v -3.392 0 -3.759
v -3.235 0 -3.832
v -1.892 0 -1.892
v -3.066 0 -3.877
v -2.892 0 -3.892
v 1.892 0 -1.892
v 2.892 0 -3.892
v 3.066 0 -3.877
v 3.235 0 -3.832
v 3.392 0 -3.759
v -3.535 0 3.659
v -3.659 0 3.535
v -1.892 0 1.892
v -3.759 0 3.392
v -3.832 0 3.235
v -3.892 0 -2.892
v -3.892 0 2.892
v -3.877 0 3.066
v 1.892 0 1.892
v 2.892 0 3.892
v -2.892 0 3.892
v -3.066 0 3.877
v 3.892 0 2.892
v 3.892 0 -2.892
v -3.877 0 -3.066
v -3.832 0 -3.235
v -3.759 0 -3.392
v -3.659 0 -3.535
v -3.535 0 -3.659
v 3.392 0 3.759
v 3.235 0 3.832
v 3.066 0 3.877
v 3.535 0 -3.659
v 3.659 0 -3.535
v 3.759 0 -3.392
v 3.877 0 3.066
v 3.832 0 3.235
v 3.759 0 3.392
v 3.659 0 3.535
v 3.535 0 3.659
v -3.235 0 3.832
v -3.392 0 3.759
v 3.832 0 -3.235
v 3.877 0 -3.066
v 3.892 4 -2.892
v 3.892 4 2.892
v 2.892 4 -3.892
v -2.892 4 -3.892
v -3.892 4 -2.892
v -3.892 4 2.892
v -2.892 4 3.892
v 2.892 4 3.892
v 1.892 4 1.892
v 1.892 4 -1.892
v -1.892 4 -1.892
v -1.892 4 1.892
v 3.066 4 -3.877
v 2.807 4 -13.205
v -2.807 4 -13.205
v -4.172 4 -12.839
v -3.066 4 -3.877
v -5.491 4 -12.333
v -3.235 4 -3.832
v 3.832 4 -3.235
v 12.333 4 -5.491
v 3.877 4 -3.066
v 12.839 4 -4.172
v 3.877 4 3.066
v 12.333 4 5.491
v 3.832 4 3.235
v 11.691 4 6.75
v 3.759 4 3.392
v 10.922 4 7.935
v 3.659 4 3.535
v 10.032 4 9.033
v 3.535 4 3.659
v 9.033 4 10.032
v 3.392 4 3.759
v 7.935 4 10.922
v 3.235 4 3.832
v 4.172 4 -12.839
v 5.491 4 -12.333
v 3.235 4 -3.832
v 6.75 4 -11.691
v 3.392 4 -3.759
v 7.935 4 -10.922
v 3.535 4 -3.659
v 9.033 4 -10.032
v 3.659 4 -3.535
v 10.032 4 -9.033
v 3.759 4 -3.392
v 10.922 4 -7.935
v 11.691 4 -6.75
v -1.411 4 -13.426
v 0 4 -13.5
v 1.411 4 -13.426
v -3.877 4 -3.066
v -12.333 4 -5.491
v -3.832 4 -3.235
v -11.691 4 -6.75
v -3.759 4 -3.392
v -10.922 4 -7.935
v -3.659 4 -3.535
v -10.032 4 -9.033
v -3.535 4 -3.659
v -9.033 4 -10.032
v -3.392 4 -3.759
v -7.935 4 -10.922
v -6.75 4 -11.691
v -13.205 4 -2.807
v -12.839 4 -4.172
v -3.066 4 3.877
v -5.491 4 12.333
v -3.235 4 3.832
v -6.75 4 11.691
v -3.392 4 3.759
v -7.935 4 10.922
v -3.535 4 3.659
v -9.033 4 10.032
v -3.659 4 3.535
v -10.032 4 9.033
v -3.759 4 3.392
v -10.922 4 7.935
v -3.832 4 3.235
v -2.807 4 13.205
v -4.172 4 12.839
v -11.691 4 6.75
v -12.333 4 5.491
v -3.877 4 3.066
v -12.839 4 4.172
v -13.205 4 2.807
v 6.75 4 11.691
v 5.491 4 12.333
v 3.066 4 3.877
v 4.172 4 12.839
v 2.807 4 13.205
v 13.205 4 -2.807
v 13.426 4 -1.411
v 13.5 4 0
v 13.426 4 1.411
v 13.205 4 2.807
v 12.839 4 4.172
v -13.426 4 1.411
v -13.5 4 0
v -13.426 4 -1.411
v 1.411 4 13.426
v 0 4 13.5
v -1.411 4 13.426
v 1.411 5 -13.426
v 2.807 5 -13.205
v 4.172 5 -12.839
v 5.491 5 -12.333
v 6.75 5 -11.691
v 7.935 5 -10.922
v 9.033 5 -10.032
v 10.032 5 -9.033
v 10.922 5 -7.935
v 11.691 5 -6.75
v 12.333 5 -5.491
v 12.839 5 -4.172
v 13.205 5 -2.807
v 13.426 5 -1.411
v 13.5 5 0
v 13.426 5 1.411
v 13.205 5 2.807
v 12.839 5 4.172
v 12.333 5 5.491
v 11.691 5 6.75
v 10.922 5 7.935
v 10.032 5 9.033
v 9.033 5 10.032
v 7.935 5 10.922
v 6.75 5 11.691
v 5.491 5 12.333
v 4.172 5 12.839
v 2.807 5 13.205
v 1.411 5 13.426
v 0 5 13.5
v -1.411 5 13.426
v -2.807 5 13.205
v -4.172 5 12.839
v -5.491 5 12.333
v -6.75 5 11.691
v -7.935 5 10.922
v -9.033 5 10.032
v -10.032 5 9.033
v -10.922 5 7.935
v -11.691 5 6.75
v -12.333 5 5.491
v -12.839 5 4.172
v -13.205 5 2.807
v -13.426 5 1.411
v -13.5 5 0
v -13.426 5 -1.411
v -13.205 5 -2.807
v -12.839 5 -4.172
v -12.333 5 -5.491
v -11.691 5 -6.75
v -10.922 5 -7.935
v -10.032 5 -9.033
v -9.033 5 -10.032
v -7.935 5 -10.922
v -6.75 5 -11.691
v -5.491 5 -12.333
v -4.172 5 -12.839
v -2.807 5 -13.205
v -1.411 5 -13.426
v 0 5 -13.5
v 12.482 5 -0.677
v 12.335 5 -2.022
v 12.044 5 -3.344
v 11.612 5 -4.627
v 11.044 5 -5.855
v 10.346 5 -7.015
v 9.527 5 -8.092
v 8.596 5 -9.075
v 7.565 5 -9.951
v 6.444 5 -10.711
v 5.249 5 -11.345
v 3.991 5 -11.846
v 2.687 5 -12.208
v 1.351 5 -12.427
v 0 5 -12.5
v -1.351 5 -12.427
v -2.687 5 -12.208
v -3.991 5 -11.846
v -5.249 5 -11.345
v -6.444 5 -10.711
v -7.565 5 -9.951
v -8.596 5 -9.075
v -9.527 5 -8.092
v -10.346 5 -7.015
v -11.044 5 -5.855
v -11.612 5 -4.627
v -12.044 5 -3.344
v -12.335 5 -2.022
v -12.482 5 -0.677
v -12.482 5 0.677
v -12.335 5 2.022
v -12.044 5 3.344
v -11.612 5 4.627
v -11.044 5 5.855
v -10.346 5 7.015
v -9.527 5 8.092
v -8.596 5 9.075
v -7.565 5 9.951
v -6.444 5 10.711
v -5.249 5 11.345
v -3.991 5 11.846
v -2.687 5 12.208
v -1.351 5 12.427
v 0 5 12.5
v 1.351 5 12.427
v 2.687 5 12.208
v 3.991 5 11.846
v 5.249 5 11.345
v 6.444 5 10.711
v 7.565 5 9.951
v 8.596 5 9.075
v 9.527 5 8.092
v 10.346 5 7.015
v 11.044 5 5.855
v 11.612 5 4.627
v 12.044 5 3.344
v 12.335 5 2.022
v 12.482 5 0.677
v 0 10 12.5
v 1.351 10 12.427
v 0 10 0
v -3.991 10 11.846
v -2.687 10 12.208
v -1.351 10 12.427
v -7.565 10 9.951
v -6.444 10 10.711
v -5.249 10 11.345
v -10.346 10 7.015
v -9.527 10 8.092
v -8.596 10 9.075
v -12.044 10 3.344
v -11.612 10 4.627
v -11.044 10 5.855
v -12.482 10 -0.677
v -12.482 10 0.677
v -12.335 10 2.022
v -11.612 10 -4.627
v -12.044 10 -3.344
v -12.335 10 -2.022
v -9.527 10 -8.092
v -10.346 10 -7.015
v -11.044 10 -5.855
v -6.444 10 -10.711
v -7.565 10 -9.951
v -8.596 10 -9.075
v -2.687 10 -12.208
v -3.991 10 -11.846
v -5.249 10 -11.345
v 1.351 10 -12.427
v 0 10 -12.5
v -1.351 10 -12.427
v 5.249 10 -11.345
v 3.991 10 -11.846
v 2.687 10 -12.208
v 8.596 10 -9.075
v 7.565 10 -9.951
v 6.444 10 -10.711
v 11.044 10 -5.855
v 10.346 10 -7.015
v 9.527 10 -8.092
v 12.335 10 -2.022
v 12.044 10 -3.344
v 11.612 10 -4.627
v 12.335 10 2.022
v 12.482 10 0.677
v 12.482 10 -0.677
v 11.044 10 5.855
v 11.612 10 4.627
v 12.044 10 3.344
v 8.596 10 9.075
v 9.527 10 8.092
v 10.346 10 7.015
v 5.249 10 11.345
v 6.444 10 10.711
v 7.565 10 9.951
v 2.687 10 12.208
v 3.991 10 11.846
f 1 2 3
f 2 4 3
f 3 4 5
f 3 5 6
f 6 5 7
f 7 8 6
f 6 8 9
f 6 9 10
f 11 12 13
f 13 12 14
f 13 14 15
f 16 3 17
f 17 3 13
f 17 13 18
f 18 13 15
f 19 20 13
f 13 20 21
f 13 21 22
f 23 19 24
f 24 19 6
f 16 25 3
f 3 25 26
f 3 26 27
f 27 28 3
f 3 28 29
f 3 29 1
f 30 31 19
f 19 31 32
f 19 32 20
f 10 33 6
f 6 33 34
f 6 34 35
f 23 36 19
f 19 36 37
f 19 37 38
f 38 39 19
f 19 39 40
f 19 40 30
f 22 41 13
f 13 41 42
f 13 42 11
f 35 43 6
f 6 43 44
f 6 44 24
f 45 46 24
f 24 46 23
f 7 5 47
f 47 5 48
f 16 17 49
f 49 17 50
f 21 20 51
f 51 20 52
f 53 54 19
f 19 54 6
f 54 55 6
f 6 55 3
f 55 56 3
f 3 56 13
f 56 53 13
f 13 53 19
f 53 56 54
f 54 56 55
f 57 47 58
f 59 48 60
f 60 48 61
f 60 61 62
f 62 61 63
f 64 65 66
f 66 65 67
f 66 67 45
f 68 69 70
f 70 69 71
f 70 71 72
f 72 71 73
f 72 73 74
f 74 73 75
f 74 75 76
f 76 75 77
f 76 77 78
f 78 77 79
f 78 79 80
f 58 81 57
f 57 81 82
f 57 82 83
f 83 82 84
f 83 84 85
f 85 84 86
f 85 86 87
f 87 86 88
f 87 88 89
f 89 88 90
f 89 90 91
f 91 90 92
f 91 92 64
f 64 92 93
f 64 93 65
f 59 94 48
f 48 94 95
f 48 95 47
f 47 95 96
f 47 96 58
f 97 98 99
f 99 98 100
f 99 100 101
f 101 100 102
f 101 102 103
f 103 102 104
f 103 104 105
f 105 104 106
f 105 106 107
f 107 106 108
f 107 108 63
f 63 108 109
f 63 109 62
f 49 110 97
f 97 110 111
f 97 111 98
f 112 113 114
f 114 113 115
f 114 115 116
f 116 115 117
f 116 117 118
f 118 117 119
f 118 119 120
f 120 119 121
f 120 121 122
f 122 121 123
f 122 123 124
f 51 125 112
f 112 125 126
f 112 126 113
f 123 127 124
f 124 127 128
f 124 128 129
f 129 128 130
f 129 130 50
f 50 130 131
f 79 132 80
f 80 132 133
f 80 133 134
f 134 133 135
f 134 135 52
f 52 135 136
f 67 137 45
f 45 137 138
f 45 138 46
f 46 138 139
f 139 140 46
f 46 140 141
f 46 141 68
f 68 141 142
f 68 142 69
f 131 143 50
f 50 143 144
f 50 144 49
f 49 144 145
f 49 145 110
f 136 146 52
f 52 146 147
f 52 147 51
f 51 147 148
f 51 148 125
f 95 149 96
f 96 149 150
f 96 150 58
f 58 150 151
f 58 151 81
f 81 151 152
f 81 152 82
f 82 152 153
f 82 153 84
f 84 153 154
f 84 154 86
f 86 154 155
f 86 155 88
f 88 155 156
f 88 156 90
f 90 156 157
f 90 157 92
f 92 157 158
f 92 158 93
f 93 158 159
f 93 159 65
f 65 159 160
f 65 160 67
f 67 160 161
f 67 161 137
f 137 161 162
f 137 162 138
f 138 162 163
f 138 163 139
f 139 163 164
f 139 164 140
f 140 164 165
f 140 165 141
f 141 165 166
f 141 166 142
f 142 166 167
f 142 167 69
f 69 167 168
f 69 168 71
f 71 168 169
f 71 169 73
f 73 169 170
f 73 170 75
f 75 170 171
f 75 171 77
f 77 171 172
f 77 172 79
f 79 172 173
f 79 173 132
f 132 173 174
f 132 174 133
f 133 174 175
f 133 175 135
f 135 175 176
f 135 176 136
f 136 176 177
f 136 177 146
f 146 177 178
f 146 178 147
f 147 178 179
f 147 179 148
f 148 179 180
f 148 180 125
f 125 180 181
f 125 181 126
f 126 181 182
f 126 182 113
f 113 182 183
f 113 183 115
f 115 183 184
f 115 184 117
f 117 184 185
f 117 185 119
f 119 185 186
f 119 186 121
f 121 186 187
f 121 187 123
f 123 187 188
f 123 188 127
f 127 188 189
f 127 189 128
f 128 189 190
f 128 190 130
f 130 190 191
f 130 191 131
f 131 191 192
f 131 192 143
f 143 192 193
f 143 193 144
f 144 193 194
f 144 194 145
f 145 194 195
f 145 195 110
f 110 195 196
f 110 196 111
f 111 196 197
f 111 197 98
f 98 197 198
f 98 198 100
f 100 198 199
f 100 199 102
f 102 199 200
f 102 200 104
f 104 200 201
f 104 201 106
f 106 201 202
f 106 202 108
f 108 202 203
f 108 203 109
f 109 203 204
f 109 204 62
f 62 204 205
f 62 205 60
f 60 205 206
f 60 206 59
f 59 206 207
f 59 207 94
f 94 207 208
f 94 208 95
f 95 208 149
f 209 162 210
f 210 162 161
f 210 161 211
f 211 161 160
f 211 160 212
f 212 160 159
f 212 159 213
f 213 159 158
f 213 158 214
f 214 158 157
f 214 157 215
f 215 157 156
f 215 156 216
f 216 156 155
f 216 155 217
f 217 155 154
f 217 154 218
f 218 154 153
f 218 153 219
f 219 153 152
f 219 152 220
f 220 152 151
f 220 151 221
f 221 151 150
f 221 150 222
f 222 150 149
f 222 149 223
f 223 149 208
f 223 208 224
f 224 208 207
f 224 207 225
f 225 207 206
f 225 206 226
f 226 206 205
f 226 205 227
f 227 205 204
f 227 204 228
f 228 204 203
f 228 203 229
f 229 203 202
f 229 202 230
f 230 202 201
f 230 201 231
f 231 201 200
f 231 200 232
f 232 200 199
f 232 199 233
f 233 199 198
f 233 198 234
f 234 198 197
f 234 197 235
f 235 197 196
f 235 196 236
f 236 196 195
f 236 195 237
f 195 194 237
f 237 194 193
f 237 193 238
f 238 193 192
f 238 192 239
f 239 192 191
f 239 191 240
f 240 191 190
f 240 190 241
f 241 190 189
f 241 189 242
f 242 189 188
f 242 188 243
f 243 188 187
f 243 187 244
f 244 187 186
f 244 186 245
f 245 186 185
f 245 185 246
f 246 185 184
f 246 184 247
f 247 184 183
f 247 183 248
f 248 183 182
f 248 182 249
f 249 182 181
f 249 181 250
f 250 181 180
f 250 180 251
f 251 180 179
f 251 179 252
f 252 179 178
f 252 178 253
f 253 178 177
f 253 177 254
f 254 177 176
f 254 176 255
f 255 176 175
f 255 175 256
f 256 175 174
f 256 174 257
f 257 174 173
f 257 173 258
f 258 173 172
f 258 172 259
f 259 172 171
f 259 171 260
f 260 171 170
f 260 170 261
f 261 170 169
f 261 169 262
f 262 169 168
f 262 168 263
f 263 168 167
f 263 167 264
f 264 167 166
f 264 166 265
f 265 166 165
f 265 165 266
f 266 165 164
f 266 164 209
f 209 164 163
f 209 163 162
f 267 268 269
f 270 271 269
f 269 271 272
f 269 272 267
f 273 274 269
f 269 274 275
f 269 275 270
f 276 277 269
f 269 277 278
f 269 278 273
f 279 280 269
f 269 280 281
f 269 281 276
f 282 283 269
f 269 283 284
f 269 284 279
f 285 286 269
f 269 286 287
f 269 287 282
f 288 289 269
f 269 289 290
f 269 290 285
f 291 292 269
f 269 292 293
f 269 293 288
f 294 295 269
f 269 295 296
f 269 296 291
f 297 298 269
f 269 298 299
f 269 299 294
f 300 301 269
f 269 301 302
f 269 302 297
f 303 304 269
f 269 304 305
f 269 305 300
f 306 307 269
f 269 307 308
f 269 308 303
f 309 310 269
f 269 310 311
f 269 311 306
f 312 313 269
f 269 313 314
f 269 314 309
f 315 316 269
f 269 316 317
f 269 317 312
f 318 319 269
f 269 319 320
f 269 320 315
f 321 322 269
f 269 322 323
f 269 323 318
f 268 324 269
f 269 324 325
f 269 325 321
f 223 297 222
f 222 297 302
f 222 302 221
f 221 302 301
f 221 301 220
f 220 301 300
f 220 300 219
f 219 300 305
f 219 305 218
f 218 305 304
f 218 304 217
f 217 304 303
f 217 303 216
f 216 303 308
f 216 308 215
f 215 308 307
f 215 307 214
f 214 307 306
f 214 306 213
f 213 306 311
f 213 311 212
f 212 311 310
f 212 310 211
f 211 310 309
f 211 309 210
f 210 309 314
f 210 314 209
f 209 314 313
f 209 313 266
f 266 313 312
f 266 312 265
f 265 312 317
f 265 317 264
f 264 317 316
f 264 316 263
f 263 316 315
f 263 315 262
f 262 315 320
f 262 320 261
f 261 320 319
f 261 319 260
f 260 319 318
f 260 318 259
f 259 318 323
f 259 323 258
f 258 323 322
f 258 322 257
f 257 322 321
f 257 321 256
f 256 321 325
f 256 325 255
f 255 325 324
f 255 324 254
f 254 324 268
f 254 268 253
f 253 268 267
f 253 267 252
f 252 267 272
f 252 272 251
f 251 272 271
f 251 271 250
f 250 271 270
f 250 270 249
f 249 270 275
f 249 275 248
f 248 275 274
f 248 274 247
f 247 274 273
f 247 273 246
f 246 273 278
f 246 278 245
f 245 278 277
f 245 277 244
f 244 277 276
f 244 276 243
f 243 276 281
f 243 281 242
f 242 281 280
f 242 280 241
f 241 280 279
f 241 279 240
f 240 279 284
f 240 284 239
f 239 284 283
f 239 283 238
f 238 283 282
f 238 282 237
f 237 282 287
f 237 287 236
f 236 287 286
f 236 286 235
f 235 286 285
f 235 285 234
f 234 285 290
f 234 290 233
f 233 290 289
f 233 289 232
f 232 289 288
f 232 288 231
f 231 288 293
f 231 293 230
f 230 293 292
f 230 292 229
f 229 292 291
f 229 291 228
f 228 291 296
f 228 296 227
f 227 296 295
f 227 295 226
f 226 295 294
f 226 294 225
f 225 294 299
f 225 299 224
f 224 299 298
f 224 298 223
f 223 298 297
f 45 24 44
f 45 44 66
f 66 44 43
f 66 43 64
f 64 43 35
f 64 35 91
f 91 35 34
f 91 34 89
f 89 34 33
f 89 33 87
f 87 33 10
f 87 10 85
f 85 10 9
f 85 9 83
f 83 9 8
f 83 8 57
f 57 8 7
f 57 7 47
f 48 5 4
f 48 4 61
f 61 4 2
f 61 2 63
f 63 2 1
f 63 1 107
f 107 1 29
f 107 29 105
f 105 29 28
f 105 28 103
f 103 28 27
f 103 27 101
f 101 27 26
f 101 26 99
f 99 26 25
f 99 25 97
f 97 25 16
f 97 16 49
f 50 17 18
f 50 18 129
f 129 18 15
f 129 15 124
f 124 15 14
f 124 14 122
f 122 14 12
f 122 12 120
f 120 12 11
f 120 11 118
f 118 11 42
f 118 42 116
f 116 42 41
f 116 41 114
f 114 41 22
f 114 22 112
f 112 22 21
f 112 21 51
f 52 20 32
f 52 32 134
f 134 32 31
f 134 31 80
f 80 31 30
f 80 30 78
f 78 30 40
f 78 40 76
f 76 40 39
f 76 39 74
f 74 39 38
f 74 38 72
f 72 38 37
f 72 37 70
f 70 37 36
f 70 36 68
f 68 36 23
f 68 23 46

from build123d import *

# Parameters (mm, degrees)
SKETCH3_W           = 7.785
SKETCH3_H           = 7.785
SKETCH3_W_2         = 3.785
SKETCH3_H_2         = 3.785
BOSS_EXTRUDE1_DEPTH = 4
SKETCH4_R           = 12.5
BOSS_EXTRUDE2_DEPTH = 6
SKETCH5_R           = 13.5
BOSS_EXTRUDE3_DEPTH = 1
FILLET1_R           = 1


with BuildPart() as part:
    # Sketch3 → Boss-Extrude1 (new body)
    with BuildSketch(Plane(origin=(0, 0, 0), x_dir=(1, 0, 0), z_dir=(0, 1, 0))):
        Rectangle(SKETCH3_W, SKETCH3_H)
        Rectangle(SKETCH3_W_2, SKETCH3_H_2, mode=Mode.SUBTRACT)
    extrude(amount=BOSS_EXTRUDE1_DEPTH)

    # Sketch4 → Boss-Extrude2 (add)
    with BuildSketch(Plane(origin=(0, 4, 0), x_dir=(1, 0, 0), z_dir=(0, 1, 0))):
        with Locations(Location((0, 0, 0), (0, 0, 270))):
            Circle(SKETCH4_R)
    extrude(amount=BOSS_EXTRUDE2_DEPTH)

    # Sketch5 → Boss-Extrude3 (add)
    with BuildSketch(Plane.XZ.offset(-4)):
        with Locations(Location((0, 0, 0), (0, 0, 270))):
            Circle(SKETCH5_R)
    extrude(amount=-BOSS_EXTRUDE3_DEPTH)

    # Fillet1
    fillet1_edges = [part.edges().sort_by_distance(p)[0] for p in [
        (3.8925, 2, 3.8925),
        (-3.8925, 2, 3.8925),
        (-3.8925, 2, -3.8925),
        (3.8925, 2, -3.8925),
    ]]
    fillet(fillet1_edges, radius=FILLET1_R)


solid = part.part
